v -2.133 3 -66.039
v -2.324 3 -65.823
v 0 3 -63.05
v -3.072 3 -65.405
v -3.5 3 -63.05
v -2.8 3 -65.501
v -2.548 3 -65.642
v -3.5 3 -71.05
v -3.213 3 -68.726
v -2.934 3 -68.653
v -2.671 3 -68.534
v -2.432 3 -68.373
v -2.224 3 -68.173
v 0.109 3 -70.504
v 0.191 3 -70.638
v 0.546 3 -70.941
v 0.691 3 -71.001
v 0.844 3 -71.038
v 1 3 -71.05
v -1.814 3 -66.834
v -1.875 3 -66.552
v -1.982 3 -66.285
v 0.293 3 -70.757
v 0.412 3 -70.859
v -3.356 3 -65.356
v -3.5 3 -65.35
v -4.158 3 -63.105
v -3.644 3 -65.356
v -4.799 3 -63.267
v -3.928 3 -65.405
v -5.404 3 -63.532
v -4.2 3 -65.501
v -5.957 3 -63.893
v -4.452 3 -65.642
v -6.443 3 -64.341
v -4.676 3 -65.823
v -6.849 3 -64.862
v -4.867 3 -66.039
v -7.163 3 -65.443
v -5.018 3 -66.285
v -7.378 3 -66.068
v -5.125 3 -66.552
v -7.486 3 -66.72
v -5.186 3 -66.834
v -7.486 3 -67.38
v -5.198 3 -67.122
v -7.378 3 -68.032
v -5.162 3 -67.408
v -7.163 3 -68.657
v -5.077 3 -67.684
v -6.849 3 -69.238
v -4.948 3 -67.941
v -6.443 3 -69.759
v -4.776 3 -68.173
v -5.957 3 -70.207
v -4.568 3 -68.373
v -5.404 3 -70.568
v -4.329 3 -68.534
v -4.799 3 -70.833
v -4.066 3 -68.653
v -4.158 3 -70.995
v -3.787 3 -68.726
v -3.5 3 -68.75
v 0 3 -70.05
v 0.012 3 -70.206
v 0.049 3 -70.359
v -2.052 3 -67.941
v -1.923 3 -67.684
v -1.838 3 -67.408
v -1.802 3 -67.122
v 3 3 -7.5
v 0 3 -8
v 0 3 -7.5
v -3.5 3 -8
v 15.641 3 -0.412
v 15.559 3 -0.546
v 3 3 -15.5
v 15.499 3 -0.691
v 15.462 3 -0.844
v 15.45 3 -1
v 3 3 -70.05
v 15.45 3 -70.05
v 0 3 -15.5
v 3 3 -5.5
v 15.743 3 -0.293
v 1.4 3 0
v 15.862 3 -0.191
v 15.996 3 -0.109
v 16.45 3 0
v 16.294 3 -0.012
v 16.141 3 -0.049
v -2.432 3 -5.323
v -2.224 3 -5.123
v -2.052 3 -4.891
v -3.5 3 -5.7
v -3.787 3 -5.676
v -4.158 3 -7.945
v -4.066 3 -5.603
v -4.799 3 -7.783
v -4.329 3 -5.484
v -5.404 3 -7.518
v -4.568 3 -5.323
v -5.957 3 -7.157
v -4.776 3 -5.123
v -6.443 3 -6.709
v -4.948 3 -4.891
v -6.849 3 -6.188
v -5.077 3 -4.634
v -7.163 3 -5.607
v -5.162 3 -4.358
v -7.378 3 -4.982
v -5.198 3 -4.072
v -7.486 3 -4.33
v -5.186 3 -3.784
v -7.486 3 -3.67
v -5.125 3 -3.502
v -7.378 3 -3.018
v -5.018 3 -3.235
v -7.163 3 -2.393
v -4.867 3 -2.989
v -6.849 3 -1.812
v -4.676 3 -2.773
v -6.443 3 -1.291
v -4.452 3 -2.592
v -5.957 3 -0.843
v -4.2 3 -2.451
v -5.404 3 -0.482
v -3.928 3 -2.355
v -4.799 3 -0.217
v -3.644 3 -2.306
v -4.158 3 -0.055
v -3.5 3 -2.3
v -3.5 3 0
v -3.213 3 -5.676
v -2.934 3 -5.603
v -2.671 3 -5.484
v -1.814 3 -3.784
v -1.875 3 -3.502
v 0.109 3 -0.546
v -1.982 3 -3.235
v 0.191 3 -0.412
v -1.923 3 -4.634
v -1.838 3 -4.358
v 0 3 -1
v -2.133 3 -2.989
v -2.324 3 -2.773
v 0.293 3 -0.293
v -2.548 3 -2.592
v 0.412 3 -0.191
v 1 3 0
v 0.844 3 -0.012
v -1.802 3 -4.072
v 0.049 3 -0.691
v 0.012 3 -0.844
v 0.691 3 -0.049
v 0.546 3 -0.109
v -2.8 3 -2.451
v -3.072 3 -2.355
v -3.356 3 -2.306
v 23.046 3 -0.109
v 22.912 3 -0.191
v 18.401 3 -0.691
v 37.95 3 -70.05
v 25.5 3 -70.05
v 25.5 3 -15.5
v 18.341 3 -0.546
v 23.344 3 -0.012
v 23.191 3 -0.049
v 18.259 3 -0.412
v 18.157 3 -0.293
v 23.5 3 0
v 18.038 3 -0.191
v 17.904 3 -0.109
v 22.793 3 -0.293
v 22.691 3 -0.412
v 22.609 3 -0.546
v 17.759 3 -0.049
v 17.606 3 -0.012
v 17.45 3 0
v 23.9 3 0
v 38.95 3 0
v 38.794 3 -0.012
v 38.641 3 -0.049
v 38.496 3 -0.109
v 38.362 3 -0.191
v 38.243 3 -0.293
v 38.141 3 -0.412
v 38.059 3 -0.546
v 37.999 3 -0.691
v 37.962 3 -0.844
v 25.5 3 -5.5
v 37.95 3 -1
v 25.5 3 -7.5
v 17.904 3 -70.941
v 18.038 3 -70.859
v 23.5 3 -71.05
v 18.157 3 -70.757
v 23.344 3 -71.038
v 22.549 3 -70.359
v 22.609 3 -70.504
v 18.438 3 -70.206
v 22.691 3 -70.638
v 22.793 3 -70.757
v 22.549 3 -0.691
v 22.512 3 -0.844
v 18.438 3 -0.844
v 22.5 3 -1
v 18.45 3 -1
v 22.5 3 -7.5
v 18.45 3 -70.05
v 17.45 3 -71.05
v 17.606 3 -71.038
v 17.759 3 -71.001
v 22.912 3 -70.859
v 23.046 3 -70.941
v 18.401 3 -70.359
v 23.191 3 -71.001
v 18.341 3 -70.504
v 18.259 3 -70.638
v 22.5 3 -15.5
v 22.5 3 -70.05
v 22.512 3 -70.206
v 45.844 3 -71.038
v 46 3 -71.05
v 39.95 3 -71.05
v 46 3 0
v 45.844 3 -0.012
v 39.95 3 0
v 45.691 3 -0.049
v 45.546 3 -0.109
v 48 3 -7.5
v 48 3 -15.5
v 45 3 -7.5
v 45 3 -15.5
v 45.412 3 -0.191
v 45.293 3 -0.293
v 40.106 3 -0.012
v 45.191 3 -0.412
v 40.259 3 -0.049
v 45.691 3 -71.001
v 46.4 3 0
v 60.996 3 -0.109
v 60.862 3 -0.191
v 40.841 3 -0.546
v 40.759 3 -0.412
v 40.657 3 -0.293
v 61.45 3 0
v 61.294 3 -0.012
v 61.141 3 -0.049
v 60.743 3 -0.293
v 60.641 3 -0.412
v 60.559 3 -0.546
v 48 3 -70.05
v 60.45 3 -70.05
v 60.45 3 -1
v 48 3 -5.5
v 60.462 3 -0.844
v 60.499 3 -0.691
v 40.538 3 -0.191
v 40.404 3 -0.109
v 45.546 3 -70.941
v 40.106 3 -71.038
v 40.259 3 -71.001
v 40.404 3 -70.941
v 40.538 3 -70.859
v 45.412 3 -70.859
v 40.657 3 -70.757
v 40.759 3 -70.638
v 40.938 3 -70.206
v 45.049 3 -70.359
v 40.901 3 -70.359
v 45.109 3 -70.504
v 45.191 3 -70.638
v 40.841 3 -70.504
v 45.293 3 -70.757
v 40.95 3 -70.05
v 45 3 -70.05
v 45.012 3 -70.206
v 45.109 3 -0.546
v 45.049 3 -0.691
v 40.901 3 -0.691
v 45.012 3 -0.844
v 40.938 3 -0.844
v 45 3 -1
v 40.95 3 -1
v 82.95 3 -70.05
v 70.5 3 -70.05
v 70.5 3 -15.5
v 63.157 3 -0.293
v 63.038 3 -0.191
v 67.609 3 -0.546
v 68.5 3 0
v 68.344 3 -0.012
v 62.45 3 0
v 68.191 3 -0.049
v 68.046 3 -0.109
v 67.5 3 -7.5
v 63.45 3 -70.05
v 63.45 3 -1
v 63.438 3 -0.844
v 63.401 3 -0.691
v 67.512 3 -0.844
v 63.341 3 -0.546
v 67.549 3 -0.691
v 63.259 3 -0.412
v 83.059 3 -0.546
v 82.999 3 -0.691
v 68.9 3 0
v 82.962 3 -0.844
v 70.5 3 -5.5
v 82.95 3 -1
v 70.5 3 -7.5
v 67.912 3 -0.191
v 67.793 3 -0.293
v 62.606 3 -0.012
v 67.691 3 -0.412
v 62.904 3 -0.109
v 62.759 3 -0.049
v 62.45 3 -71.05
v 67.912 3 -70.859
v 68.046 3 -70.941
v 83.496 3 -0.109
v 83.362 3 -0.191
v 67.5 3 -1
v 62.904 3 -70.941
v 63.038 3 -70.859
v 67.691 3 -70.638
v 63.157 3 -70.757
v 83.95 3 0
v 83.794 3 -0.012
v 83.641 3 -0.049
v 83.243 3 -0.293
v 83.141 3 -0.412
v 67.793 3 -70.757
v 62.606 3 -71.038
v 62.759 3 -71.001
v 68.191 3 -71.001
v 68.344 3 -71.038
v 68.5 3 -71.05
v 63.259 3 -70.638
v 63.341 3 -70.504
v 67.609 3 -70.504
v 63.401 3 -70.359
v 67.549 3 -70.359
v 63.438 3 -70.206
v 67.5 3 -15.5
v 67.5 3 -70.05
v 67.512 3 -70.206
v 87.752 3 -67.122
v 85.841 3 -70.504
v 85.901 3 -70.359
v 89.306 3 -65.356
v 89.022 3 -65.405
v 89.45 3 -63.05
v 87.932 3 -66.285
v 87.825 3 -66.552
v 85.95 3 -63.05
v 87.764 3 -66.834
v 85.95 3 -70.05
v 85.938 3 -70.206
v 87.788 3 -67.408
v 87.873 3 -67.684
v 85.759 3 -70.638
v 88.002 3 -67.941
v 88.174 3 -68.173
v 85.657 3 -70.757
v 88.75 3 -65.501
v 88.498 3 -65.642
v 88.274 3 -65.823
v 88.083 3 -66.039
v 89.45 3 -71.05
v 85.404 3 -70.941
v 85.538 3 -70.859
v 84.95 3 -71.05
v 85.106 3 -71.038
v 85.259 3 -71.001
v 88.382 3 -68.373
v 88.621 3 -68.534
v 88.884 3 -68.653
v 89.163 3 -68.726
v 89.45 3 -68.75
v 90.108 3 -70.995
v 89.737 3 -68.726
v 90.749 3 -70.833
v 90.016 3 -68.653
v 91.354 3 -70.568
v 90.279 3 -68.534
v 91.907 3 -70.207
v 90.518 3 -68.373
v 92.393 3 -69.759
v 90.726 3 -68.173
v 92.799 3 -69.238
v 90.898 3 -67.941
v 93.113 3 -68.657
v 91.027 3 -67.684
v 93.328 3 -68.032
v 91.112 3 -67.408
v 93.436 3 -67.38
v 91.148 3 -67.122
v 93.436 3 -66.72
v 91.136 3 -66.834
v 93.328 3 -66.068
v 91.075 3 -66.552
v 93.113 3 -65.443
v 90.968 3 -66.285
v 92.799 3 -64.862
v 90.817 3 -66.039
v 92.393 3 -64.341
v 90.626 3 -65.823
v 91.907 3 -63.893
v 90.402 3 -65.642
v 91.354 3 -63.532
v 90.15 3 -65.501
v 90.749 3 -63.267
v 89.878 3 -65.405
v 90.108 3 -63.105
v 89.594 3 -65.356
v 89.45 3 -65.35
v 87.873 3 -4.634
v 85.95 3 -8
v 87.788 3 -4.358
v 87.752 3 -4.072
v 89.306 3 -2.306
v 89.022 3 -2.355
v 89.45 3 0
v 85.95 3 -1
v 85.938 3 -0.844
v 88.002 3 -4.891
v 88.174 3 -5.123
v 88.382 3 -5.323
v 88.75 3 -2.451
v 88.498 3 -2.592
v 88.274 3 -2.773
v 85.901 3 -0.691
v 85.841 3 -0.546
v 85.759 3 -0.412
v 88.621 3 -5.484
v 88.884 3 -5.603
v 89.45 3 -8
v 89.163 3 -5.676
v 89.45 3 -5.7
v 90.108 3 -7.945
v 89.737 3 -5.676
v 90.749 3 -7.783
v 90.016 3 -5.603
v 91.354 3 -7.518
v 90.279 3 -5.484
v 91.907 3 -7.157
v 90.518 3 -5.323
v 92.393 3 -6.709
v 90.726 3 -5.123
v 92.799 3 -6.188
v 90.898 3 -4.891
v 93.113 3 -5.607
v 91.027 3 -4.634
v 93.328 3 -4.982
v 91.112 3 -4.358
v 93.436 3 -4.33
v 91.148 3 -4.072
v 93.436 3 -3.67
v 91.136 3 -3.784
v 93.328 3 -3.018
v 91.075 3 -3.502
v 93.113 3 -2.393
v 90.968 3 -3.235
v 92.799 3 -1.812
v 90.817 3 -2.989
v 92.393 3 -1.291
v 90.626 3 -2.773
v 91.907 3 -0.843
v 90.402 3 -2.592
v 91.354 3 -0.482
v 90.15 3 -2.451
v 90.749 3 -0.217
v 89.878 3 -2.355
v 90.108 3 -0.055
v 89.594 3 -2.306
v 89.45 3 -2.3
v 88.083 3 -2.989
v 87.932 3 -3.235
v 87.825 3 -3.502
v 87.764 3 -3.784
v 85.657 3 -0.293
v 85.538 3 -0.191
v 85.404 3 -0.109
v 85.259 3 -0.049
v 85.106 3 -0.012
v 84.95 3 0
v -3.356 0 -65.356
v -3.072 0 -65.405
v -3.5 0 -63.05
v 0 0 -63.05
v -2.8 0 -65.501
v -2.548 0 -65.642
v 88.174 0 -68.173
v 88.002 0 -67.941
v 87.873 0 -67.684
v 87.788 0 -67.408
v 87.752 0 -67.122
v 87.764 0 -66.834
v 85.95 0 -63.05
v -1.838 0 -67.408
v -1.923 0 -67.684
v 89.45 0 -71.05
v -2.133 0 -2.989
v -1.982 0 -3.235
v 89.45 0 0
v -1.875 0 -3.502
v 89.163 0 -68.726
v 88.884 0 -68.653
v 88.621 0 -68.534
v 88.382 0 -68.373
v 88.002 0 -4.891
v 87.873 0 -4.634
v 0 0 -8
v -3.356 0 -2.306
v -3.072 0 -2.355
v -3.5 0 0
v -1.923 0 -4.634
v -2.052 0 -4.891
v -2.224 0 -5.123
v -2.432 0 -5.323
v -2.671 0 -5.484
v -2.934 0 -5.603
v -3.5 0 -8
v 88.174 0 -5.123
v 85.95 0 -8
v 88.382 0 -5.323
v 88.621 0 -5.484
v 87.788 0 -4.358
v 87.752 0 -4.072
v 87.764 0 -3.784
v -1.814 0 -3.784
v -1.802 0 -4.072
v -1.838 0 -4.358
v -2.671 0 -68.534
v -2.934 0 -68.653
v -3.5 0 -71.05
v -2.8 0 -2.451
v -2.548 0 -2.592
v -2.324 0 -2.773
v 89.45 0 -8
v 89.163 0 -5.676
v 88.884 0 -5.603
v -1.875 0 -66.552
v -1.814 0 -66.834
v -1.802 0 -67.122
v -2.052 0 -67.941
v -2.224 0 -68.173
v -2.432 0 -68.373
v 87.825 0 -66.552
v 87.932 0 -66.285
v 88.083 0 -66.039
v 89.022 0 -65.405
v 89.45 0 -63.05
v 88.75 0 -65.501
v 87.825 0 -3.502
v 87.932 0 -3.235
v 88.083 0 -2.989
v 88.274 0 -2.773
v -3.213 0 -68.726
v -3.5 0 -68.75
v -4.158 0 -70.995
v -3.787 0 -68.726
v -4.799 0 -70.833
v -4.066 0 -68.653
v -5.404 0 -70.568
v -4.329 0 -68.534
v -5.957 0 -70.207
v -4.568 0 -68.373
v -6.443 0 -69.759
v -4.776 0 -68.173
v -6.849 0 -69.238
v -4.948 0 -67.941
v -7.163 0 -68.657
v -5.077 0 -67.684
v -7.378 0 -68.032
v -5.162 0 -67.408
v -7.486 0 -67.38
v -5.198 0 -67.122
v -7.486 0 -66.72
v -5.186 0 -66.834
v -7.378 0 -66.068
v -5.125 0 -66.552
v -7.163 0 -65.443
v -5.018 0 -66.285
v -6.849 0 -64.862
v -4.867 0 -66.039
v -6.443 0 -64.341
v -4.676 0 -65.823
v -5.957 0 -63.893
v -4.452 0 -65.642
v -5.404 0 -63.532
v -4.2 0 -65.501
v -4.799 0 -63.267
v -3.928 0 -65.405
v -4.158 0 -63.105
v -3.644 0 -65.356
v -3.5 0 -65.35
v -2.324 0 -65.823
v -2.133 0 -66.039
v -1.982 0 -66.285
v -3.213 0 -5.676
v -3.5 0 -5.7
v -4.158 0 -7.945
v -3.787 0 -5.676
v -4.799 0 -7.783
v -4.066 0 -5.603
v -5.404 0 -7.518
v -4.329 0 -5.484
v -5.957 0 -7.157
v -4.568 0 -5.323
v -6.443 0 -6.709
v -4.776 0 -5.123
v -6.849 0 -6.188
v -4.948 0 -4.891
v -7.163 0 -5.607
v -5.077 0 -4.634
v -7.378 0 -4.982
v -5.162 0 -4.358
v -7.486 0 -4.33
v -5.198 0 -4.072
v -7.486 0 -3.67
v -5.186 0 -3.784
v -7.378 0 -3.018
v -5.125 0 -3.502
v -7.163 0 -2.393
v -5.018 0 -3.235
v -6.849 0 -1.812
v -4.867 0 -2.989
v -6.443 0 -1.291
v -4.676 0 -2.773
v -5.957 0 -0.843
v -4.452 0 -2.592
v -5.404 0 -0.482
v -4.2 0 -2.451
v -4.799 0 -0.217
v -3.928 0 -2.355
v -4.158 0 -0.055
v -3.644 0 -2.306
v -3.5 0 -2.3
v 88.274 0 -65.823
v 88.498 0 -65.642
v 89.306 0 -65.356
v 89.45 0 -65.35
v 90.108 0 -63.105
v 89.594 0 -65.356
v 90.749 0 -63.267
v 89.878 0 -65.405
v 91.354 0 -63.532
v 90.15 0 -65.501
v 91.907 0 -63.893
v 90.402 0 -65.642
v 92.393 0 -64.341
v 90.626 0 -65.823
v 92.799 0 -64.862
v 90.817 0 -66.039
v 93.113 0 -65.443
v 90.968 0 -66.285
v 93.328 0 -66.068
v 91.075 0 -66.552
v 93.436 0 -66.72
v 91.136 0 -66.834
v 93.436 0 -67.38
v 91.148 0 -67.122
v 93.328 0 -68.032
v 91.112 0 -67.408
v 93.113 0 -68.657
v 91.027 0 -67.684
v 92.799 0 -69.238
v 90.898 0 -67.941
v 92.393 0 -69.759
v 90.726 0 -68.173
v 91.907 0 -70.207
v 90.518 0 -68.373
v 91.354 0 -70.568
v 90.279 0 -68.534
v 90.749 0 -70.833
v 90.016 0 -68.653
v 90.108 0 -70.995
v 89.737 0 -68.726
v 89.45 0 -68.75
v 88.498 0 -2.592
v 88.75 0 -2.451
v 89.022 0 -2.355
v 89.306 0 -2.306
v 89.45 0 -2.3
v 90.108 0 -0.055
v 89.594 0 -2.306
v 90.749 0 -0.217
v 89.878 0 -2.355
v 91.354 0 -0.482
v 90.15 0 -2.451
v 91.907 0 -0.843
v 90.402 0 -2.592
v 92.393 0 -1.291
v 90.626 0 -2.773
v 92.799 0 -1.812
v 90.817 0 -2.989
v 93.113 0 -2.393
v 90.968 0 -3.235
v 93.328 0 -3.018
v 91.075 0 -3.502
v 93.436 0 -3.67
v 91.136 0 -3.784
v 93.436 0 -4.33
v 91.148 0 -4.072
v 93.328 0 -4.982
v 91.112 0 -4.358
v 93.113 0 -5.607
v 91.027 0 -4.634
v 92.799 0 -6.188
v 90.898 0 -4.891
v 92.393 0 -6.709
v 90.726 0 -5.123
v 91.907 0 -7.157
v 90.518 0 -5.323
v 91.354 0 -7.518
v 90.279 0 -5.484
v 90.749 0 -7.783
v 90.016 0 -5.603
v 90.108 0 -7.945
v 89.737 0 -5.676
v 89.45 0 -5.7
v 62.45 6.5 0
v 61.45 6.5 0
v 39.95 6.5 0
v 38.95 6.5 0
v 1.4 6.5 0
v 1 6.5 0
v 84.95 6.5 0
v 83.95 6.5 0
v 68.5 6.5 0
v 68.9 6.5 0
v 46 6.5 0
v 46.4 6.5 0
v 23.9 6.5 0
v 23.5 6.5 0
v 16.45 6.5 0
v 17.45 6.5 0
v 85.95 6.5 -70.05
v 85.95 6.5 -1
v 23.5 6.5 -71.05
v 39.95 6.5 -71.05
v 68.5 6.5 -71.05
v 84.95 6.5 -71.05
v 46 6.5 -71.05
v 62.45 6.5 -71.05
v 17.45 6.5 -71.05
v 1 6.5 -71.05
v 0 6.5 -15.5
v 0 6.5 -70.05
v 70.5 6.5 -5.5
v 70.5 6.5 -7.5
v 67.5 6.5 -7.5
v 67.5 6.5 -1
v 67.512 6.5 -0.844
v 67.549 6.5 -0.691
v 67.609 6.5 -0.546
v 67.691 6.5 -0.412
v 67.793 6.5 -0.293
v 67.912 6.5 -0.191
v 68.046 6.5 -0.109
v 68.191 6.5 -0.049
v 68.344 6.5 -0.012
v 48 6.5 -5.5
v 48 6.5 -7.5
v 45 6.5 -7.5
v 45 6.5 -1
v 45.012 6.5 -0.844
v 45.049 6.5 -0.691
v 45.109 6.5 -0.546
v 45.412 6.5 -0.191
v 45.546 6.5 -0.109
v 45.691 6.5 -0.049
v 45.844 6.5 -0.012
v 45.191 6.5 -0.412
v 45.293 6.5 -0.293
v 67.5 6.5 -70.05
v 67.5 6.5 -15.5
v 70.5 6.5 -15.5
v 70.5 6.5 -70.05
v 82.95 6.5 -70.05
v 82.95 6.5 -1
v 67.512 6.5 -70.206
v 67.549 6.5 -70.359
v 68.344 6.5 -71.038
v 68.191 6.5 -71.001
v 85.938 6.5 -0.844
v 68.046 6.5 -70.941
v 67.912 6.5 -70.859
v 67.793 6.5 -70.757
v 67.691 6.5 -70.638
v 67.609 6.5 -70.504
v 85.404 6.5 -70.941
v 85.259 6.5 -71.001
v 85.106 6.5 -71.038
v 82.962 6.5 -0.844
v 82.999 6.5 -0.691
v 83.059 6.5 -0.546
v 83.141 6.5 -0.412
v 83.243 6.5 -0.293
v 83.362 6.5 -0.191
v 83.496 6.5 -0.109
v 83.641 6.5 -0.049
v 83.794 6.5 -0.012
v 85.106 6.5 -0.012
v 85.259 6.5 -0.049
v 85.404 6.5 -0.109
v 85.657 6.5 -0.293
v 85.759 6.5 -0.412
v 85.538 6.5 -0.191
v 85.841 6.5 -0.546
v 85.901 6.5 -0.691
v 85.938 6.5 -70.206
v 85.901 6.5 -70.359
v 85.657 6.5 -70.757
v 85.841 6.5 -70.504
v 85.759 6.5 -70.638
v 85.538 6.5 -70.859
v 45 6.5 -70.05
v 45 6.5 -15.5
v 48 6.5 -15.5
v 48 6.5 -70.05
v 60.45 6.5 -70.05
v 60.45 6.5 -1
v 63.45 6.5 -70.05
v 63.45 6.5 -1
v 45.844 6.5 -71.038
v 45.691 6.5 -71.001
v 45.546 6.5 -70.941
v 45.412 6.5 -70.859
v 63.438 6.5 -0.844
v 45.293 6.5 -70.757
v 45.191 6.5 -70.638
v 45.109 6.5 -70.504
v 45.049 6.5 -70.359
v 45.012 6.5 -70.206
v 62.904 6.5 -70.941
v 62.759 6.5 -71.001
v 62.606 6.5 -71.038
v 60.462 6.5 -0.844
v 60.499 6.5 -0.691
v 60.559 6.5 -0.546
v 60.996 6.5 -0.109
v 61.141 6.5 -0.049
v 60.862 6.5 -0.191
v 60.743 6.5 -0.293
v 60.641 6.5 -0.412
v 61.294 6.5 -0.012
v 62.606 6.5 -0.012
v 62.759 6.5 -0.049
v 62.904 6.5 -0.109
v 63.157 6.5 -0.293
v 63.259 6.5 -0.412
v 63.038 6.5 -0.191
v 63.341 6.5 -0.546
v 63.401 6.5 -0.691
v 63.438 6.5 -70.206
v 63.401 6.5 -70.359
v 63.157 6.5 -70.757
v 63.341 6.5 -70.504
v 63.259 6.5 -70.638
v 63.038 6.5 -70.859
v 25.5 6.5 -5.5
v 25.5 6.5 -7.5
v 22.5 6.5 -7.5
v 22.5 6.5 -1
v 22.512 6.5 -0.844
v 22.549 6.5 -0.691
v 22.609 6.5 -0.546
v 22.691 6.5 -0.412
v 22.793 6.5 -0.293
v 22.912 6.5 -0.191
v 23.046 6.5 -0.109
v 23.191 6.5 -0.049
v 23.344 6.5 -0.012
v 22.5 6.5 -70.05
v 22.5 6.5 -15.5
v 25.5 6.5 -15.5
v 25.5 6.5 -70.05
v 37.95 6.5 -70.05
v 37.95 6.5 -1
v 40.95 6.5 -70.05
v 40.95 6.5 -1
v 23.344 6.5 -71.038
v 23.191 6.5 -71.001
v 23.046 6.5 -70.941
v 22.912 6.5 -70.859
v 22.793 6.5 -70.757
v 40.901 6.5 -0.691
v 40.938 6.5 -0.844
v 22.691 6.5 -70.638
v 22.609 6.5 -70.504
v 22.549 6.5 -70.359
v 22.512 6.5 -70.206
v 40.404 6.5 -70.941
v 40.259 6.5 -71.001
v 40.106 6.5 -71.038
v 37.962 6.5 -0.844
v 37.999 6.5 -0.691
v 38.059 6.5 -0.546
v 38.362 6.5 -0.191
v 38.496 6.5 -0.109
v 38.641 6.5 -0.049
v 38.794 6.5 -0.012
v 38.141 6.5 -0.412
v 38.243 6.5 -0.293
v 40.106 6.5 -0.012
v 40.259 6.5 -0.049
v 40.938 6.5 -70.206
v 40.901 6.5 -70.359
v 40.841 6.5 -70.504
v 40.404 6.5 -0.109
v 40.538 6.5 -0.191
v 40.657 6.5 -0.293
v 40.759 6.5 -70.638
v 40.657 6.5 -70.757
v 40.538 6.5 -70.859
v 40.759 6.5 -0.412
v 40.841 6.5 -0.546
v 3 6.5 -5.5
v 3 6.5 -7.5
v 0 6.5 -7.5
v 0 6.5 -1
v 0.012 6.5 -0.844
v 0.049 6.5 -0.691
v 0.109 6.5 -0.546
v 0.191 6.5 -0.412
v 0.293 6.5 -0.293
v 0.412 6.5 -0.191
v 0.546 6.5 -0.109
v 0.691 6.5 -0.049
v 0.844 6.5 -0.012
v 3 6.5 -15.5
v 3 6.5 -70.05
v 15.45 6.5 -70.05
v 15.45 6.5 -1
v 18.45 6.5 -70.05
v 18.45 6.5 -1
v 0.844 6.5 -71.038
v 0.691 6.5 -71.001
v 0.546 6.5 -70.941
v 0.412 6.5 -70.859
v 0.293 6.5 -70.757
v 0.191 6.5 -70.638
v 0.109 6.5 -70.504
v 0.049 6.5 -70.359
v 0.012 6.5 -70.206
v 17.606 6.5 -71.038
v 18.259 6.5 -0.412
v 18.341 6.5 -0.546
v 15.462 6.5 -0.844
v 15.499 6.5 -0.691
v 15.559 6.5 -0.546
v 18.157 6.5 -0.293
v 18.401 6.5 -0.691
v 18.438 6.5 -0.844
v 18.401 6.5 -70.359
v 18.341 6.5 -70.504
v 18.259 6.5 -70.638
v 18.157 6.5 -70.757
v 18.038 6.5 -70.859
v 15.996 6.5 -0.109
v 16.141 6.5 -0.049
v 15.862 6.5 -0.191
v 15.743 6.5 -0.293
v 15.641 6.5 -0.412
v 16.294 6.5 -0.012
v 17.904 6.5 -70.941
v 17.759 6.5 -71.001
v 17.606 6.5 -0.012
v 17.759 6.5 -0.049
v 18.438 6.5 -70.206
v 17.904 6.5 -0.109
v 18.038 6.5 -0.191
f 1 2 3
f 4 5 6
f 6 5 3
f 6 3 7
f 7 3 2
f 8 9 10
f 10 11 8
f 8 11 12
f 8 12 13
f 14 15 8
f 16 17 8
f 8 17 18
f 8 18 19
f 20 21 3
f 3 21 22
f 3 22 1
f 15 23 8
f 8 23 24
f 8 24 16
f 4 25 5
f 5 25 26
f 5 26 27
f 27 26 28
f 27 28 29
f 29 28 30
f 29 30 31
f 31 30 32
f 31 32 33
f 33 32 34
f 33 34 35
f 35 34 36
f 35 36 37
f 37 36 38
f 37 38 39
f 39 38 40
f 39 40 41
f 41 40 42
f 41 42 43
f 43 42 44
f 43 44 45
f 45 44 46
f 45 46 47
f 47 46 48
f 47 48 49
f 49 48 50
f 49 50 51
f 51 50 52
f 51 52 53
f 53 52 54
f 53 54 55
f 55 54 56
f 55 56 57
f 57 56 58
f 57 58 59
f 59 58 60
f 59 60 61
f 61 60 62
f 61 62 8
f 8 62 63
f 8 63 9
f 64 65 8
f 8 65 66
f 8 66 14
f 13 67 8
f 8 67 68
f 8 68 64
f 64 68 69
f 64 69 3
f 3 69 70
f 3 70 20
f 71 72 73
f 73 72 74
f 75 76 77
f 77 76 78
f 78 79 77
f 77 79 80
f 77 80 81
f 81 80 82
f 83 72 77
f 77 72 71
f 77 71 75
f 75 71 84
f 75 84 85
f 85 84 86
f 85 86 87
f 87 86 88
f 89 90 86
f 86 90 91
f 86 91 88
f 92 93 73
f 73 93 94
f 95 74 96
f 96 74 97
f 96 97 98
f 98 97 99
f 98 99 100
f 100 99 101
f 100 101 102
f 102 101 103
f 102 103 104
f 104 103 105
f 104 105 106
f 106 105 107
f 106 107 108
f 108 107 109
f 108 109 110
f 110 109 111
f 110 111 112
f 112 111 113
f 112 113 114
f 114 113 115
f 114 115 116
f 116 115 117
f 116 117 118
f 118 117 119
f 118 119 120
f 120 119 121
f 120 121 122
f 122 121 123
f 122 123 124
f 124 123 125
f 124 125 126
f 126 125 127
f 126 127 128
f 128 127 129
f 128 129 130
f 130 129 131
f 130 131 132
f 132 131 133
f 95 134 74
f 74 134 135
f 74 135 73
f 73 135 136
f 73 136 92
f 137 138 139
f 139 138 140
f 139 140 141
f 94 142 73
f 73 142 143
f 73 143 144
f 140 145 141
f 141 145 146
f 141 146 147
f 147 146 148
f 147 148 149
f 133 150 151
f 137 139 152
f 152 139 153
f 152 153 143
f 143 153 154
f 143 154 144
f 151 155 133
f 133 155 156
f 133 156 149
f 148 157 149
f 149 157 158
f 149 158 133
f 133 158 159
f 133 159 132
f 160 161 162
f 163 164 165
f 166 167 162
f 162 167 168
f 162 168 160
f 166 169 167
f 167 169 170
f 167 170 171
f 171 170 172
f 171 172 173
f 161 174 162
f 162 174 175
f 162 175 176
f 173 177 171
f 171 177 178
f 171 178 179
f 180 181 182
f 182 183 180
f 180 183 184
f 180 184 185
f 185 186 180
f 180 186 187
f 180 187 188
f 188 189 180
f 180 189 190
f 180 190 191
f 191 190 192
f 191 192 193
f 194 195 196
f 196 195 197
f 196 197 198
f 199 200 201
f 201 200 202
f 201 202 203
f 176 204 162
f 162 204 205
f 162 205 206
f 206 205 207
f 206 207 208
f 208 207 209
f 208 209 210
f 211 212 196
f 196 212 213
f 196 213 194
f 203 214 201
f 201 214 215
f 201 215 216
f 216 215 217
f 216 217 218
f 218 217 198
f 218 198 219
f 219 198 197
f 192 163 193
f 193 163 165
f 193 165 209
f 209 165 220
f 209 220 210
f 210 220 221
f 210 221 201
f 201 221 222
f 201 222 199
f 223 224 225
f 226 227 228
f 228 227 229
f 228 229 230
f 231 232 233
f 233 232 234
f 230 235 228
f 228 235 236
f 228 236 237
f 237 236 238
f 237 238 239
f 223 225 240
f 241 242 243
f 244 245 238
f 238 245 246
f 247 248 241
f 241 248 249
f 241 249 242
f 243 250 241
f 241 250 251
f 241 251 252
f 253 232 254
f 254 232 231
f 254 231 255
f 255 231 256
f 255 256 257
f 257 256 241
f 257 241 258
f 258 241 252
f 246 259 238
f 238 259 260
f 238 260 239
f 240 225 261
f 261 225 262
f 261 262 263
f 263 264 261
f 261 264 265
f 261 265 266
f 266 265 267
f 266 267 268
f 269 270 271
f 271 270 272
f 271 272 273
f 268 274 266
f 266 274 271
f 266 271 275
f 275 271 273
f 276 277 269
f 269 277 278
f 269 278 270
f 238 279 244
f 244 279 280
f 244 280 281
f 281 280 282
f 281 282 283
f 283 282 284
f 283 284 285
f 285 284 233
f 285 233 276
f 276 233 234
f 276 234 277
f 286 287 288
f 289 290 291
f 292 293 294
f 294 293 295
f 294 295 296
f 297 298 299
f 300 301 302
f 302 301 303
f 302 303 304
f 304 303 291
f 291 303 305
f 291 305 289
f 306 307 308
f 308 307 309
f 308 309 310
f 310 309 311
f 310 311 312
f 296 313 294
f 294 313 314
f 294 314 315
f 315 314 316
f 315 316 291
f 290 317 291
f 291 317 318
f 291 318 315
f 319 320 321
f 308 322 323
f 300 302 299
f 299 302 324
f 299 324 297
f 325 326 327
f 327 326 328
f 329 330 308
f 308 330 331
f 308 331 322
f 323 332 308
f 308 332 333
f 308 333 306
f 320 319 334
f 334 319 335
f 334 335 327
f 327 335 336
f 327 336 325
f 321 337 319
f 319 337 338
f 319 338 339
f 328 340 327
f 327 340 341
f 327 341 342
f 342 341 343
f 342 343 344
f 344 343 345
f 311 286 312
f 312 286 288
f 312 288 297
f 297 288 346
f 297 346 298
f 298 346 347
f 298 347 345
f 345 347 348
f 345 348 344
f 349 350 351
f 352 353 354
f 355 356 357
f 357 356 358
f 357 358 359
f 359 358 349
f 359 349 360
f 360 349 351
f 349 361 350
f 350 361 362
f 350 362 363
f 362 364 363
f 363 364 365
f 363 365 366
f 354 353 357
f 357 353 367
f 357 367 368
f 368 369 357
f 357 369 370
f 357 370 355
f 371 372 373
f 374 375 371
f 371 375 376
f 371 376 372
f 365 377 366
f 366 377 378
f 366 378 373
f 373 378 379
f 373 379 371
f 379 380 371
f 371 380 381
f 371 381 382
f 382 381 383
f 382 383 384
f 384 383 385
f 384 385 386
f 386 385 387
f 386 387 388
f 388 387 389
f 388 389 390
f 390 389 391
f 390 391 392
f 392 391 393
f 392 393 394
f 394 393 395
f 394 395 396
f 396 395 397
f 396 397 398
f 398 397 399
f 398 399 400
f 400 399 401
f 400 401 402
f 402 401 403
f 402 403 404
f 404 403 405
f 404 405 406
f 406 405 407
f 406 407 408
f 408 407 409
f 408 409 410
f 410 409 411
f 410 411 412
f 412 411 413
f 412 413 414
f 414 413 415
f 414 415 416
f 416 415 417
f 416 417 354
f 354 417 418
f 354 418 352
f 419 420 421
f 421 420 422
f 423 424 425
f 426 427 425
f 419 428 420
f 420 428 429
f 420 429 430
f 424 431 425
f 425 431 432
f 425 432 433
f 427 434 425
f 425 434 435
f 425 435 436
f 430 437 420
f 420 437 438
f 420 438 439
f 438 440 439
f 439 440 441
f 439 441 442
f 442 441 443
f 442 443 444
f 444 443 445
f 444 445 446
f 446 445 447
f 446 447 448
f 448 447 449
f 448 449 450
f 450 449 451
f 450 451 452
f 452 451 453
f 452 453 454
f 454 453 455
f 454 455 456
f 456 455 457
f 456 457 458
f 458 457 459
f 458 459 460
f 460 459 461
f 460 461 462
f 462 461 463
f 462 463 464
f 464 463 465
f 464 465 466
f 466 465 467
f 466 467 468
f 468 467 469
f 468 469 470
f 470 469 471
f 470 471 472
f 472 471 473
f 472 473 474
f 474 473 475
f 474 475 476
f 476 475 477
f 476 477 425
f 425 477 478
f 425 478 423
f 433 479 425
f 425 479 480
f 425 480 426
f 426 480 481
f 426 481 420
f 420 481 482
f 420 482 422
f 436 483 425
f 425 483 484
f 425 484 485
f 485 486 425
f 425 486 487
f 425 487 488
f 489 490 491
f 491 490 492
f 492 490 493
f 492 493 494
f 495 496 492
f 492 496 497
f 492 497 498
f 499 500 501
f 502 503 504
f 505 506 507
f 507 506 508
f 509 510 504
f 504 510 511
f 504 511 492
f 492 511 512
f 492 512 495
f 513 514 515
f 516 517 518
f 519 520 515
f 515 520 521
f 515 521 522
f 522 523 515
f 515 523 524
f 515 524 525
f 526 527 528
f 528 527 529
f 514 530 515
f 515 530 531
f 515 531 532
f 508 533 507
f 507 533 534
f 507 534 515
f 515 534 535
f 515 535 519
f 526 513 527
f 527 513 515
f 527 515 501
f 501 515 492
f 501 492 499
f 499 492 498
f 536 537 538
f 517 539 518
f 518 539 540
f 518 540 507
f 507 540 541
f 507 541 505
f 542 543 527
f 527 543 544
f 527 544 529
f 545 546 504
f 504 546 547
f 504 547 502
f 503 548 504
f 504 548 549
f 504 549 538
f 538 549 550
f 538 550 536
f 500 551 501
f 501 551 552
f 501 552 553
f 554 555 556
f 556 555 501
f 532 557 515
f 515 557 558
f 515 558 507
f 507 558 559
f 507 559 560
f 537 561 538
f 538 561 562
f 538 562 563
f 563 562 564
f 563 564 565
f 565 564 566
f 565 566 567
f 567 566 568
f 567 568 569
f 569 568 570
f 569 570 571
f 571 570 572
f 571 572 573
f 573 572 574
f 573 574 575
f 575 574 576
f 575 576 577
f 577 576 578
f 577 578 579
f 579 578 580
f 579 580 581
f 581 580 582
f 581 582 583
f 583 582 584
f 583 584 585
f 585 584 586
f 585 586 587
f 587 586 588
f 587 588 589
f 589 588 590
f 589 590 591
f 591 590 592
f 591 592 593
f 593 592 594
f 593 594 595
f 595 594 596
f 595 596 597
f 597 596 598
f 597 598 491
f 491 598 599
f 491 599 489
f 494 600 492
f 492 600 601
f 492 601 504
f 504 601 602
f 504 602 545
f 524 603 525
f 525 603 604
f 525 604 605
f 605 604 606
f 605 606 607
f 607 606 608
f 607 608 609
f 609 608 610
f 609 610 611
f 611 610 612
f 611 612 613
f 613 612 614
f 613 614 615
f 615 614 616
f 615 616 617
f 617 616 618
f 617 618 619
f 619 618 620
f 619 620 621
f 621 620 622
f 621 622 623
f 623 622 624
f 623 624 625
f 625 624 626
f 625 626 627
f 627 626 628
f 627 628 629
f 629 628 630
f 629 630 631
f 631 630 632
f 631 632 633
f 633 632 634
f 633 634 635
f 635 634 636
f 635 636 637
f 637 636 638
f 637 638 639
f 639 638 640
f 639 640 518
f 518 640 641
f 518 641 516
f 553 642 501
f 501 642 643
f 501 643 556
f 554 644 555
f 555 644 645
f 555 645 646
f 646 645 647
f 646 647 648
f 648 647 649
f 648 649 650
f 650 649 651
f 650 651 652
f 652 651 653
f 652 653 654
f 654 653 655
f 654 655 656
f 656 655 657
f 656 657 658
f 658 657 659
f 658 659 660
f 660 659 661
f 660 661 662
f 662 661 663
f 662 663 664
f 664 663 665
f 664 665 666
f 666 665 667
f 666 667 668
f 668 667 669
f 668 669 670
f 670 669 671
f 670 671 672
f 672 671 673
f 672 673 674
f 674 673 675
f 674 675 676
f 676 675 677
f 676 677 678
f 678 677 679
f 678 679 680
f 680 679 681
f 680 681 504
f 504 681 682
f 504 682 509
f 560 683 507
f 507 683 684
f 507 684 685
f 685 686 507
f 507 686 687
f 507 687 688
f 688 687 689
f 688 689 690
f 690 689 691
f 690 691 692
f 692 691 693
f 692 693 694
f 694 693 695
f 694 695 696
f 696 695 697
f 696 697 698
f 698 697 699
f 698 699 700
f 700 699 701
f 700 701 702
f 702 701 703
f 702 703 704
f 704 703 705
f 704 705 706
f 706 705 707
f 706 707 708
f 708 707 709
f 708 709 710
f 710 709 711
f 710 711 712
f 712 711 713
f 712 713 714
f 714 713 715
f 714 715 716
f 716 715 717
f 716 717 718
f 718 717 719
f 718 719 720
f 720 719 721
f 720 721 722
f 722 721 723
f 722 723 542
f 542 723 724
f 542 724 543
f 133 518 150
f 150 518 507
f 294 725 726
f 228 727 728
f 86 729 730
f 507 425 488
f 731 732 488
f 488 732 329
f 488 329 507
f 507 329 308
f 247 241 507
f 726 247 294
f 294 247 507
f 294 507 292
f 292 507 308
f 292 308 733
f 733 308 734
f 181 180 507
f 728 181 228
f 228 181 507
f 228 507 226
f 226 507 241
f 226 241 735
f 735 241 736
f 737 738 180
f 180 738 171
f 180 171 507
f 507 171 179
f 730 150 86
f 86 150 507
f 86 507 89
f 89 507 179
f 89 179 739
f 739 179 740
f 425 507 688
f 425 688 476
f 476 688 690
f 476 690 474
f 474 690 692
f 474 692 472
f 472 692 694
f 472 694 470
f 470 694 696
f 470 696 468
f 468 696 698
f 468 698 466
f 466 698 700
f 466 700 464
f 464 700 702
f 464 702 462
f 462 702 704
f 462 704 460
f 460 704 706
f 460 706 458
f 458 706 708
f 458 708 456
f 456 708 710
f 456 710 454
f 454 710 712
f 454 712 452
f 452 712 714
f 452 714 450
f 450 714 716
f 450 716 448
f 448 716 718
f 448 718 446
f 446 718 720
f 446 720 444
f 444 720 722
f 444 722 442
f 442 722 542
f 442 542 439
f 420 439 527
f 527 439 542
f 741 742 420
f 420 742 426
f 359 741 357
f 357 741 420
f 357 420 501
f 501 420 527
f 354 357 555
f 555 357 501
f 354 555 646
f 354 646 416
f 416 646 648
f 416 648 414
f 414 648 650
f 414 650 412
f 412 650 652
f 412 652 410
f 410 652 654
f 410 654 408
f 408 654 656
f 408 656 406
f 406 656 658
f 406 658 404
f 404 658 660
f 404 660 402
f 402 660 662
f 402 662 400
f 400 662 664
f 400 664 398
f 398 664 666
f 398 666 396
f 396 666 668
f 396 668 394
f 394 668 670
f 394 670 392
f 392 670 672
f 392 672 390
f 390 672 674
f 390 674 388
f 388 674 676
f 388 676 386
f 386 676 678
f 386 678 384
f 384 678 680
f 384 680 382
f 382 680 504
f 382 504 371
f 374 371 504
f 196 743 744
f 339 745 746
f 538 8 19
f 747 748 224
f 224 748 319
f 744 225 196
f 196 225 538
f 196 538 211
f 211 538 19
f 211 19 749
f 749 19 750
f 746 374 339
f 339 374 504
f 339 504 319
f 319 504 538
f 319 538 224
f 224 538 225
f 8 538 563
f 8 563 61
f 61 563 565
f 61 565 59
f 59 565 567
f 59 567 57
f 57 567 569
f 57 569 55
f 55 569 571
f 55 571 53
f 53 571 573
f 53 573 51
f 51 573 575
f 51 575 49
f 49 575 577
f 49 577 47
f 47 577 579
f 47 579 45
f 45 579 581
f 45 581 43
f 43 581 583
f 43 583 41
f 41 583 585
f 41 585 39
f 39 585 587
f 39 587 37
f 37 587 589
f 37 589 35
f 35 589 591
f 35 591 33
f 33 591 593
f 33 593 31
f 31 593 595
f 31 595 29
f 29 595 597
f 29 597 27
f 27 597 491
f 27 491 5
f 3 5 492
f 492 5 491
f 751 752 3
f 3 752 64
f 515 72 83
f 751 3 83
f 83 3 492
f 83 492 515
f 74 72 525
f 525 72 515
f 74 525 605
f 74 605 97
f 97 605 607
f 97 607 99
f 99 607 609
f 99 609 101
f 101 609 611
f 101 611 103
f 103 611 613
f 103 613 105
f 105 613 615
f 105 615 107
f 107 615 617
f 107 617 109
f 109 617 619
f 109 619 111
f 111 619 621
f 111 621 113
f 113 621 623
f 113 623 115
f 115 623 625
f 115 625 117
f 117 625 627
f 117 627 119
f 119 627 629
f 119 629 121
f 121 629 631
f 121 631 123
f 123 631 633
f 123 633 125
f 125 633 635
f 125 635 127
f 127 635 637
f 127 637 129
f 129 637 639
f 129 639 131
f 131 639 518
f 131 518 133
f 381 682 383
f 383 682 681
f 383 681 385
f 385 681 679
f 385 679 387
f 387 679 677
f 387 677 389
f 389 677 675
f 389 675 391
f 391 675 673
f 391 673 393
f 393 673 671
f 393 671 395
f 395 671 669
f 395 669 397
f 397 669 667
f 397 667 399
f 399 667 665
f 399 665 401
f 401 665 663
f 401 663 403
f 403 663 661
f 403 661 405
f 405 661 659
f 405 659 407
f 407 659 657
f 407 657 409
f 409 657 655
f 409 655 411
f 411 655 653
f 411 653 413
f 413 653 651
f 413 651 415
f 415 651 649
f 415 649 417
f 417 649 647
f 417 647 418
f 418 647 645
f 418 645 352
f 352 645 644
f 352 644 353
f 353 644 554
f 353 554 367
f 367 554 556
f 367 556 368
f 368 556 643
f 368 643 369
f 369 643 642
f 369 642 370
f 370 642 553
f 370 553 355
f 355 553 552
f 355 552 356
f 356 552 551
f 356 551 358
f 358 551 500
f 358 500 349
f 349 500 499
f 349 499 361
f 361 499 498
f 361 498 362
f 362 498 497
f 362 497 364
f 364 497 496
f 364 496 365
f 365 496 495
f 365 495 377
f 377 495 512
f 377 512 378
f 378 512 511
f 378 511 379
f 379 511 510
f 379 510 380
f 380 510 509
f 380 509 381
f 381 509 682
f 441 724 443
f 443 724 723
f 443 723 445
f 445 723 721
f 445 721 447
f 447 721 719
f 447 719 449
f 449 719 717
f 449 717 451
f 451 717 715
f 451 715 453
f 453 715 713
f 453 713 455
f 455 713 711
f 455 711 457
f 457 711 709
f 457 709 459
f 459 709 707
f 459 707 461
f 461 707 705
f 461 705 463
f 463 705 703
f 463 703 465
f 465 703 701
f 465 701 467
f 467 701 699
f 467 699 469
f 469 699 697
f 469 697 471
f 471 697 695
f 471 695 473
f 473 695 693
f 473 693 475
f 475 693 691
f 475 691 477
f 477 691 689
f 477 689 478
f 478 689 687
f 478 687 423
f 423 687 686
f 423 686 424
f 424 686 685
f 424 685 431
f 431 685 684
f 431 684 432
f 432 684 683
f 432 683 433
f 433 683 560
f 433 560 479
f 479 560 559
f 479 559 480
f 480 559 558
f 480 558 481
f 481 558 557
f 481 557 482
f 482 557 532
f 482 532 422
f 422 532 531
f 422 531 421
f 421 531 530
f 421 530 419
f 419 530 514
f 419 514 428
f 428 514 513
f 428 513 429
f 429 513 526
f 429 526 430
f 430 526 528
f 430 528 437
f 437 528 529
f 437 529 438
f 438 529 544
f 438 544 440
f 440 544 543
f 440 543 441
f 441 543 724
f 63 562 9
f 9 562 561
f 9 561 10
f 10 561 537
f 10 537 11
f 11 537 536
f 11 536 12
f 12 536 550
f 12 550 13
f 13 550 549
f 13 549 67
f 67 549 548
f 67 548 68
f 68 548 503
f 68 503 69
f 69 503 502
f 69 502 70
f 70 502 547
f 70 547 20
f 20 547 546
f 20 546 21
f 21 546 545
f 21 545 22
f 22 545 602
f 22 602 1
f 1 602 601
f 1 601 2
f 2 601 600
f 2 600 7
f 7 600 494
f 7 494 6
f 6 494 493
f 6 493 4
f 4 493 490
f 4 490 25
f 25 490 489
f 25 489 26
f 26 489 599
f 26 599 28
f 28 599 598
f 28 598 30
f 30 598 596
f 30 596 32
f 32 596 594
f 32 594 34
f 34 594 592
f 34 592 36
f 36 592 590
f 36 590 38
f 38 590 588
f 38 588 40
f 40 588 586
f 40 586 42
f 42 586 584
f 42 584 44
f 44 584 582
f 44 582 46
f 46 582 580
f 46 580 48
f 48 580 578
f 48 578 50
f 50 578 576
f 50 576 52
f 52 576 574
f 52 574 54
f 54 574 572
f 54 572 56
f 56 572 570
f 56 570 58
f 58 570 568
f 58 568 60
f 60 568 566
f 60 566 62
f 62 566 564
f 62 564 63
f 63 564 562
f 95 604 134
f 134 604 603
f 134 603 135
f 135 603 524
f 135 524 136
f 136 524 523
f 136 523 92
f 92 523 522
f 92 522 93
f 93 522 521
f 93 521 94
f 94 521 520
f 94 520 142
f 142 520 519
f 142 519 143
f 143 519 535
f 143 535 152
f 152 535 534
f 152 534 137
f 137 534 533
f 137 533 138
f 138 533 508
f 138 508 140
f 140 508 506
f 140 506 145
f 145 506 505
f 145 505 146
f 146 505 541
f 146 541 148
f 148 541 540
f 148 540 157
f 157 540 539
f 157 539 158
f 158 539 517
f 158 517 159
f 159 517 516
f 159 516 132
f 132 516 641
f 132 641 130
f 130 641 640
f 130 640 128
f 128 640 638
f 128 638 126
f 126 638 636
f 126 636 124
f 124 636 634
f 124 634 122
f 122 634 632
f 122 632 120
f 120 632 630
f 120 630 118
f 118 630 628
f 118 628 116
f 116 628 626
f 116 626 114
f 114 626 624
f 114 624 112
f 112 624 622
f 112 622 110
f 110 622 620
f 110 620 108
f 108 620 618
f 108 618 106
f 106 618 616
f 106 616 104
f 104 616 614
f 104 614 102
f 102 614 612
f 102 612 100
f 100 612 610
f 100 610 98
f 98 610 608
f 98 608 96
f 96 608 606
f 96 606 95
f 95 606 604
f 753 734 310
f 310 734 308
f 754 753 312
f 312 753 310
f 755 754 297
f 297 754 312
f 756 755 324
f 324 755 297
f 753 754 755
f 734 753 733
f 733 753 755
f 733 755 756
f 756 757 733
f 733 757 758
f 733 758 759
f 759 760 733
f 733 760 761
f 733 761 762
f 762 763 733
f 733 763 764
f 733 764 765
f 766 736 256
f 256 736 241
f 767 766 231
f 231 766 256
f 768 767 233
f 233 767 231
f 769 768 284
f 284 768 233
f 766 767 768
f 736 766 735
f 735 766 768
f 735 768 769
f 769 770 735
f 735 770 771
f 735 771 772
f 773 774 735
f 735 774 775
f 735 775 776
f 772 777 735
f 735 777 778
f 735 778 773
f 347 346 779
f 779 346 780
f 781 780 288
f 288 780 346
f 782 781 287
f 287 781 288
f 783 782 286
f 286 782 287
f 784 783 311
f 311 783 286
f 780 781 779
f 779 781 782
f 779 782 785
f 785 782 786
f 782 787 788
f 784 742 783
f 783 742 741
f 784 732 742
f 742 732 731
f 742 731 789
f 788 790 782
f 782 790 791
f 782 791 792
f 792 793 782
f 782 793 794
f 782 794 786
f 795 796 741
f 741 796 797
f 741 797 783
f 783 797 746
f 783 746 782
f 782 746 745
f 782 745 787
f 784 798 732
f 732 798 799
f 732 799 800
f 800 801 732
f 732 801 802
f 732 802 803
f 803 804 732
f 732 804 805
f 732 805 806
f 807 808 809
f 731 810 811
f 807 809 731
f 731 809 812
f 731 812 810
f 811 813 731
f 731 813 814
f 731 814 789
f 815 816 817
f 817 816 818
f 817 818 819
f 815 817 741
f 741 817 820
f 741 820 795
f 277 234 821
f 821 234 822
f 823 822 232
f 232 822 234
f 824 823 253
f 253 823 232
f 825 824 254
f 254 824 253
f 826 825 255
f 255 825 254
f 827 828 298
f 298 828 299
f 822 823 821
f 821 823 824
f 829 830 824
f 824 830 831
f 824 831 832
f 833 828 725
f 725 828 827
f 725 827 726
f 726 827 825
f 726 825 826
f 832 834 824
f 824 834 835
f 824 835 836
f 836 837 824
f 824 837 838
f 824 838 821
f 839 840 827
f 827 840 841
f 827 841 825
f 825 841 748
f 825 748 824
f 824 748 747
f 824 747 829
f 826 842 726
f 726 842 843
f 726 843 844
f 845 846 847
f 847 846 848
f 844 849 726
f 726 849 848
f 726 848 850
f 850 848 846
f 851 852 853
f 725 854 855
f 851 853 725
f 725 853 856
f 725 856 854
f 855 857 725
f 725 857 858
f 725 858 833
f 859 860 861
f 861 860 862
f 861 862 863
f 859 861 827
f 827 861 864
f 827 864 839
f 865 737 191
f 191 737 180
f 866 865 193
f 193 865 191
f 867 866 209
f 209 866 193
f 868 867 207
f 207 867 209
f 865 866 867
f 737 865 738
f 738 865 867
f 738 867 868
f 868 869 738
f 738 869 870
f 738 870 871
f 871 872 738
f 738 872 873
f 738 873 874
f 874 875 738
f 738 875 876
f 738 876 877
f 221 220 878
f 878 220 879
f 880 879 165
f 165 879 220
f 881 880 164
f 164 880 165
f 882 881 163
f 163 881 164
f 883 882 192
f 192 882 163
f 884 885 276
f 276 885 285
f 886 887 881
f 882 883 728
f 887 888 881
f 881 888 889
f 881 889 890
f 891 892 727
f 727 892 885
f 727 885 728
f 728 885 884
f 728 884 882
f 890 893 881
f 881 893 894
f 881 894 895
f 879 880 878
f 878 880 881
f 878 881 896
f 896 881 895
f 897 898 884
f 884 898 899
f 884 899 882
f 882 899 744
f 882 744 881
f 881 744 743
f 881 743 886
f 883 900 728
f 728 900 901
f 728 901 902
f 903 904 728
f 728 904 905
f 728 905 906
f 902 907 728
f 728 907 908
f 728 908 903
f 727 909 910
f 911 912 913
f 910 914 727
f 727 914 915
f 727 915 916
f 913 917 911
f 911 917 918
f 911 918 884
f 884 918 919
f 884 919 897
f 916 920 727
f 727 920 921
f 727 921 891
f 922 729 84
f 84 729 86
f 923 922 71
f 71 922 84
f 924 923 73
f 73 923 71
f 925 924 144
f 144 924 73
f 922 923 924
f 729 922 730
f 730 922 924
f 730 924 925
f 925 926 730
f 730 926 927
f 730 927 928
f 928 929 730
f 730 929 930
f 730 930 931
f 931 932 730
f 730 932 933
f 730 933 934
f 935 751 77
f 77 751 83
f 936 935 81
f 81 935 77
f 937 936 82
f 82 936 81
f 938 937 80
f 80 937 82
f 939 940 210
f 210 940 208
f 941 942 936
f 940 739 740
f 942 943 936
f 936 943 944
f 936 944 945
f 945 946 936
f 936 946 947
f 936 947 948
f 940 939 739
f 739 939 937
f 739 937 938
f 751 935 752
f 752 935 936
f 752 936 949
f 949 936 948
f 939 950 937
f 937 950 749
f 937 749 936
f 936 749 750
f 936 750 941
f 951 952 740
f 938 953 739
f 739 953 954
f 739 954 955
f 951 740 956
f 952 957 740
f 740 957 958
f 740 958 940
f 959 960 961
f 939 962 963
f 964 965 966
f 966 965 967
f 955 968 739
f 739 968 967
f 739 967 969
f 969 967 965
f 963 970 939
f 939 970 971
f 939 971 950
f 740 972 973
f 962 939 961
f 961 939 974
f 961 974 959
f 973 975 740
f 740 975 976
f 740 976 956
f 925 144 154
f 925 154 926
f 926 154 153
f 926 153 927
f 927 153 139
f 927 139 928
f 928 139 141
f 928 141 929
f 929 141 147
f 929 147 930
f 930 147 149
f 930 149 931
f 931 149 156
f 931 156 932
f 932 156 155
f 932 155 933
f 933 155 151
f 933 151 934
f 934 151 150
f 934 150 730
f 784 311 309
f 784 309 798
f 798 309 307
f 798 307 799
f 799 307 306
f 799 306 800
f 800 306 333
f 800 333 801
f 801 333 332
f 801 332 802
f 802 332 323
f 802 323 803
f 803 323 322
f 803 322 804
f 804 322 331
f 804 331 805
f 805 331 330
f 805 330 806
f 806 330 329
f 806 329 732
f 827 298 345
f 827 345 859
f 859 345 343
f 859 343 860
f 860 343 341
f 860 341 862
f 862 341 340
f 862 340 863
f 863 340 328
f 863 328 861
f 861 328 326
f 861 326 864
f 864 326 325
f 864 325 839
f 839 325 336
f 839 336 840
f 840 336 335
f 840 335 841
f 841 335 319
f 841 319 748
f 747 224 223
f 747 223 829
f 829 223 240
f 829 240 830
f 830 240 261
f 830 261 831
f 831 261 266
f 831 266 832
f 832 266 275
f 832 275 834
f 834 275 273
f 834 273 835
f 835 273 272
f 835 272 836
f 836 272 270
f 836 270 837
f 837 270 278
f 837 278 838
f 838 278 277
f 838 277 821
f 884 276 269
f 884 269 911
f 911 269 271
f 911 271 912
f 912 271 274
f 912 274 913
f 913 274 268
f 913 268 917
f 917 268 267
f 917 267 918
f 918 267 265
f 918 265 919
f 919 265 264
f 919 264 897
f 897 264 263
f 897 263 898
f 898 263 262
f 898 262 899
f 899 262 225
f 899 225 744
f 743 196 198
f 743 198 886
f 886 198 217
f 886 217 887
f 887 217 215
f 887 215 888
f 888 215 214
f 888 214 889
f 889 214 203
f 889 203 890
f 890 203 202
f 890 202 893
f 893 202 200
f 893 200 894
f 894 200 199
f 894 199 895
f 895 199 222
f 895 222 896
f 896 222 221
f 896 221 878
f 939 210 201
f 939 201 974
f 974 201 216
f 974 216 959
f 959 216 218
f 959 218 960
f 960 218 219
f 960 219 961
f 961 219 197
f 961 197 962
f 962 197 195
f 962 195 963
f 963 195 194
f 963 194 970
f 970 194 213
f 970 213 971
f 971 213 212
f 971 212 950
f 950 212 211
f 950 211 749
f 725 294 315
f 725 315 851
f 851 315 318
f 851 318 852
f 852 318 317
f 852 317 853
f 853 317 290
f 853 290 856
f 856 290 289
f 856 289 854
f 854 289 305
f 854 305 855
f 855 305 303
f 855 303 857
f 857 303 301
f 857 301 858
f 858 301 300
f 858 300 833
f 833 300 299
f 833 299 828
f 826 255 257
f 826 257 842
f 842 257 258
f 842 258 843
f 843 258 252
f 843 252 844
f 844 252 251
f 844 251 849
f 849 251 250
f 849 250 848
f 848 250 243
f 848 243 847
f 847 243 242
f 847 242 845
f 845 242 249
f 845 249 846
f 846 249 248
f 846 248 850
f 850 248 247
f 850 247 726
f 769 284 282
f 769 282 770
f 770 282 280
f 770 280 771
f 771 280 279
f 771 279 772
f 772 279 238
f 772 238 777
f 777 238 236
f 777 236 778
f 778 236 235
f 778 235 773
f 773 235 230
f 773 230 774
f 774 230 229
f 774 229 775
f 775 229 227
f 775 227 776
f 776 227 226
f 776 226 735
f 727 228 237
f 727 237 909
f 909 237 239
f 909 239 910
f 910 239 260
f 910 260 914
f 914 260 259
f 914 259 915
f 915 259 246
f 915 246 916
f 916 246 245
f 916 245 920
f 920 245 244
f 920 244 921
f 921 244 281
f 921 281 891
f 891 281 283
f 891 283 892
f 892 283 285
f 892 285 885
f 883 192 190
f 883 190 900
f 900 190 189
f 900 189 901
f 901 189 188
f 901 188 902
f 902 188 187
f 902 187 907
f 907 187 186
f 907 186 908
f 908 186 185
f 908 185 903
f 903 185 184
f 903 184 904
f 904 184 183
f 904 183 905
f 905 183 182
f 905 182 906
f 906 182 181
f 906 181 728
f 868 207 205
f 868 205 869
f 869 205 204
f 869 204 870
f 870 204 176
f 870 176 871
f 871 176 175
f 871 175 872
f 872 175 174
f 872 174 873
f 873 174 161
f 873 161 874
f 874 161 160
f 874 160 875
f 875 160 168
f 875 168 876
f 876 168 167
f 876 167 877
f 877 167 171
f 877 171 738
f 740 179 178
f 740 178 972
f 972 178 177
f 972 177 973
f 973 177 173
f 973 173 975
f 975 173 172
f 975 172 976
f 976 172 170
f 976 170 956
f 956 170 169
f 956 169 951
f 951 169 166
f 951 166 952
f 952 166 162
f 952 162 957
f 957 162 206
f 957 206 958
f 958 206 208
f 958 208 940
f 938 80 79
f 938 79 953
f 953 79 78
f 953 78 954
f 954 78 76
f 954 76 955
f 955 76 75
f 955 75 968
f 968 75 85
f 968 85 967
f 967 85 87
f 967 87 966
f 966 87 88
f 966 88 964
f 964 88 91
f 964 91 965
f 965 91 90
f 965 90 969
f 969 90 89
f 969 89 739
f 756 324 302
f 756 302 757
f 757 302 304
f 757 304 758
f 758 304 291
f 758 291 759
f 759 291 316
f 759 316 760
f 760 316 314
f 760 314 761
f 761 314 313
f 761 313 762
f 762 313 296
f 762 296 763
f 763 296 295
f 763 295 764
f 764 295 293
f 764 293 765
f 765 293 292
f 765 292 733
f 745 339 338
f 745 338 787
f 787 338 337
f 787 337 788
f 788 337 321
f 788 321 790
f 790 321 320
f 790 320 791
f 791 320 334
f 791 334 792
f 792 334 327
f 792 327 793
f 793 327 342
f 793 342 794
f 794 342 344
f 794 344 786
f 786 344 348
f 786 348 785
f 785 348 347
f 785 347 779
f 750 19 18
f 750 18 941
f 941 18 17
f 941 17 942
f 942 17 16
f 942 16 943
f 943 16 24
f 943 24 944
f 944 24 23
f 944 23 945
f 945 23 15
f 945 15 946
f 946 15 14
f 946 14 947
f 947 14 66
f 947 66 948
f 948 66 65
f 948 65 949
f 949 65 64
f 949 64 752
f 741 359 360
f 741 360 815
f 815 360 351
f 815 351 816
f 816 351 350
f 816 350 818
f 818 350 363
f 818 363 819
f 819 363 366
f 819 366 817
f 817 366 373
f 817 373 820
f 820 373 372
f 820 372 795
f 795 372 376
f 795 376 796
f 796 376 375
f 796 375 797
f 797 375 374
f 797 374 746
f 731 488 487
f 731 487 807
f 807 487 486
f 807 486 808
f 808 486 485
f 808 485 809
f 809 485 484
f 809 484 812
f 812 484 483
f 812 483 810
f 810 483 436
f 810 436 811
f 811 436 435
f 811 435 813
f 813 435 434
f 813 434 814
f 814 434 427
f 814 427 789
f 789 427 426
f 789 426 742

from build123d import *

# Parameters (mm, degrees)
SKETCH_2_R      = 1.7
EXTRUDE_1_DEPTH = 3
EXTRUDE_2_DEPTH = 3.5
FILLET_5_R      = 1


with BuildPart() as part:
    # ｽｹｯﾁ2 → ﾎﾞｽ - 押し出し1 (new body)
    with BuildSketch(Plane(origin=(0, 0, 0), x_dir=(1, 0, 0), z_dir=(0, 1, 0))):
        with BuildLine():
            Line((85.95, 71.05), (89.45, 71.05))
            ThreePointArc((89.45, 71.05), (93.45, 67.05), (89.45, 63.05))
            Line((89.45, 63.05), (85.95, 63.05))
            Line((85.95, 63.05), (85.95, 8))
            Line((85.95, 8), (89.45, 8))
            ThreePointArc((89.45, 8), (93.45, 4), (89.45, 0))
            Line((89.45, 0), (85.95, 0))
            Line((85.95, 0), (0, 0))
            Line((0, 0), (-3.5, 0))
            ThreePointArc((-3.5, 0), (-7.5, 4), (-3.5, 8))
            Line((-3.5, 8), (0, 8))
            Line((0, 8), (0, 63.05))
            Line((0, 63.05), (-3.5, 63.05))
            ThreePointArc((-3.5, 63.05), (-7.5, 67.05), (-3.5, 71.05))
            Line((-3.5, 71.05), (0, 71.05))
            Line((0, 71.05), (85.95, 71.05))
        make_face()
        with Locations(Location((89.45, 67.05, 0), (0, 0, 270))):
            Circle(SKETCH_2_R, mode=Mode.SUBTRACT)
        with Locations(Location((89.45, 4, 0), (0, 0, 270))):
            Circle(SKETCH_2_R, mode=Mode.SUBTRACT)
        with Locations(Location((-3.5, 67.05, 0), (0, 0, 270))):
            Circle(SKETCH_2_R, mode=Mode.SUBTRACT)
        with Locations(Location((-3.5, 4, 0), (0, 0, 270))):
            Circle(SKETCH_2_R, mode=Mode.SUBTRACT)
    extrude(amount=EXTRUDE_1_DEPTH)

    # ｽｹｯﾁ3 → ﾎﾞｽ - 押し出し2 (add)
    with BuildSketch(Plane(origin=(0, 3, 0), x_dir=(1, 0, 0), z_dir=(0, 1, 0))):
        Polygon((68.9, 0), (70.5, 5.5), (70.5, 7.5), (67.5, 7.5), (67.5, 0), align=None)
        Polygon((67.5, 15.5), (70.5, 15.5), (70.5, 70.05), (82.95, 70.05), (82.95, 0), (85.95, 0), (85.95, 71.05), (67.5, 71.05), align=None)
        Polygon((45, 15.5), (48, 15.5), (48, 70.05), (60.45, 70.05), (60.45, 0), (63.45, 0), (63.45, 71.05), (45, 71.05), align=None)
        Polygon((46.4, 0), (48, 5.5), (48, 7.5), (45, 7.5), (45, 0), align=None)
        Polygon((22.5, 15.5), (25.5, 15.5), (25.5, 70.05), (37.95, 70.05), (37.95, 0), (40.95, 0), (40.95, 71.05), (22.5, 71.05), align=None)
        Polygon((23.9, 0), (25.5, 5.5), (25.5, 7.5), (22.5, 7.5), (22.5, 0), align=None)
        Polygon((0, 15.5), (3, 15.5), (3, 70.05), (15.45, 70.05), (15.45, 0), (18.45, 0), (18.45, 71.05), (0, 71.05), align=None)
        Polygon((1.4, 0), (3, 5.5), (3, 7.5), (0, 7.5), (0, 0), align=None)
    extrude(amount=EXTRUDE_2_DEPTH)

    # ﾌｨﾚｯﾄ5
    fillet_5_edges = [part.edges().sort_by_distance(p)[0] for p in [
        (85.95, 4.75, 0),
        (85.95, 4.75, -71.05),
        (45, 4.75, -71.05),
        (60.45, 4.75, 0),
        (63.45, 4.75, 0),
        (63.45, 4.75, -71.05),
        (22.5, 4.75, 0),
        (22.5, 4.75, -71.05),
        (37.95, 4.75, 0),
        (40.95, 4.75, 0),
        (40.95, 4.75, -71.05),
        (0, 4.75, 0),
        (0, 4.75, -71.05),
        (15.45, 4.75, 0),
        (18.45, 4.75, 0),
        (18.45, 4.75, -71.05),
        (67.5, 4.75, 0),
        (45, 4.75, 0),
        (67.5, 4.75, -71.05),
        (82.95, 4.75, 0),
    ]]
    fillet(fillet_5_edges, radius=FILLET_5_R)


solid = part.part
